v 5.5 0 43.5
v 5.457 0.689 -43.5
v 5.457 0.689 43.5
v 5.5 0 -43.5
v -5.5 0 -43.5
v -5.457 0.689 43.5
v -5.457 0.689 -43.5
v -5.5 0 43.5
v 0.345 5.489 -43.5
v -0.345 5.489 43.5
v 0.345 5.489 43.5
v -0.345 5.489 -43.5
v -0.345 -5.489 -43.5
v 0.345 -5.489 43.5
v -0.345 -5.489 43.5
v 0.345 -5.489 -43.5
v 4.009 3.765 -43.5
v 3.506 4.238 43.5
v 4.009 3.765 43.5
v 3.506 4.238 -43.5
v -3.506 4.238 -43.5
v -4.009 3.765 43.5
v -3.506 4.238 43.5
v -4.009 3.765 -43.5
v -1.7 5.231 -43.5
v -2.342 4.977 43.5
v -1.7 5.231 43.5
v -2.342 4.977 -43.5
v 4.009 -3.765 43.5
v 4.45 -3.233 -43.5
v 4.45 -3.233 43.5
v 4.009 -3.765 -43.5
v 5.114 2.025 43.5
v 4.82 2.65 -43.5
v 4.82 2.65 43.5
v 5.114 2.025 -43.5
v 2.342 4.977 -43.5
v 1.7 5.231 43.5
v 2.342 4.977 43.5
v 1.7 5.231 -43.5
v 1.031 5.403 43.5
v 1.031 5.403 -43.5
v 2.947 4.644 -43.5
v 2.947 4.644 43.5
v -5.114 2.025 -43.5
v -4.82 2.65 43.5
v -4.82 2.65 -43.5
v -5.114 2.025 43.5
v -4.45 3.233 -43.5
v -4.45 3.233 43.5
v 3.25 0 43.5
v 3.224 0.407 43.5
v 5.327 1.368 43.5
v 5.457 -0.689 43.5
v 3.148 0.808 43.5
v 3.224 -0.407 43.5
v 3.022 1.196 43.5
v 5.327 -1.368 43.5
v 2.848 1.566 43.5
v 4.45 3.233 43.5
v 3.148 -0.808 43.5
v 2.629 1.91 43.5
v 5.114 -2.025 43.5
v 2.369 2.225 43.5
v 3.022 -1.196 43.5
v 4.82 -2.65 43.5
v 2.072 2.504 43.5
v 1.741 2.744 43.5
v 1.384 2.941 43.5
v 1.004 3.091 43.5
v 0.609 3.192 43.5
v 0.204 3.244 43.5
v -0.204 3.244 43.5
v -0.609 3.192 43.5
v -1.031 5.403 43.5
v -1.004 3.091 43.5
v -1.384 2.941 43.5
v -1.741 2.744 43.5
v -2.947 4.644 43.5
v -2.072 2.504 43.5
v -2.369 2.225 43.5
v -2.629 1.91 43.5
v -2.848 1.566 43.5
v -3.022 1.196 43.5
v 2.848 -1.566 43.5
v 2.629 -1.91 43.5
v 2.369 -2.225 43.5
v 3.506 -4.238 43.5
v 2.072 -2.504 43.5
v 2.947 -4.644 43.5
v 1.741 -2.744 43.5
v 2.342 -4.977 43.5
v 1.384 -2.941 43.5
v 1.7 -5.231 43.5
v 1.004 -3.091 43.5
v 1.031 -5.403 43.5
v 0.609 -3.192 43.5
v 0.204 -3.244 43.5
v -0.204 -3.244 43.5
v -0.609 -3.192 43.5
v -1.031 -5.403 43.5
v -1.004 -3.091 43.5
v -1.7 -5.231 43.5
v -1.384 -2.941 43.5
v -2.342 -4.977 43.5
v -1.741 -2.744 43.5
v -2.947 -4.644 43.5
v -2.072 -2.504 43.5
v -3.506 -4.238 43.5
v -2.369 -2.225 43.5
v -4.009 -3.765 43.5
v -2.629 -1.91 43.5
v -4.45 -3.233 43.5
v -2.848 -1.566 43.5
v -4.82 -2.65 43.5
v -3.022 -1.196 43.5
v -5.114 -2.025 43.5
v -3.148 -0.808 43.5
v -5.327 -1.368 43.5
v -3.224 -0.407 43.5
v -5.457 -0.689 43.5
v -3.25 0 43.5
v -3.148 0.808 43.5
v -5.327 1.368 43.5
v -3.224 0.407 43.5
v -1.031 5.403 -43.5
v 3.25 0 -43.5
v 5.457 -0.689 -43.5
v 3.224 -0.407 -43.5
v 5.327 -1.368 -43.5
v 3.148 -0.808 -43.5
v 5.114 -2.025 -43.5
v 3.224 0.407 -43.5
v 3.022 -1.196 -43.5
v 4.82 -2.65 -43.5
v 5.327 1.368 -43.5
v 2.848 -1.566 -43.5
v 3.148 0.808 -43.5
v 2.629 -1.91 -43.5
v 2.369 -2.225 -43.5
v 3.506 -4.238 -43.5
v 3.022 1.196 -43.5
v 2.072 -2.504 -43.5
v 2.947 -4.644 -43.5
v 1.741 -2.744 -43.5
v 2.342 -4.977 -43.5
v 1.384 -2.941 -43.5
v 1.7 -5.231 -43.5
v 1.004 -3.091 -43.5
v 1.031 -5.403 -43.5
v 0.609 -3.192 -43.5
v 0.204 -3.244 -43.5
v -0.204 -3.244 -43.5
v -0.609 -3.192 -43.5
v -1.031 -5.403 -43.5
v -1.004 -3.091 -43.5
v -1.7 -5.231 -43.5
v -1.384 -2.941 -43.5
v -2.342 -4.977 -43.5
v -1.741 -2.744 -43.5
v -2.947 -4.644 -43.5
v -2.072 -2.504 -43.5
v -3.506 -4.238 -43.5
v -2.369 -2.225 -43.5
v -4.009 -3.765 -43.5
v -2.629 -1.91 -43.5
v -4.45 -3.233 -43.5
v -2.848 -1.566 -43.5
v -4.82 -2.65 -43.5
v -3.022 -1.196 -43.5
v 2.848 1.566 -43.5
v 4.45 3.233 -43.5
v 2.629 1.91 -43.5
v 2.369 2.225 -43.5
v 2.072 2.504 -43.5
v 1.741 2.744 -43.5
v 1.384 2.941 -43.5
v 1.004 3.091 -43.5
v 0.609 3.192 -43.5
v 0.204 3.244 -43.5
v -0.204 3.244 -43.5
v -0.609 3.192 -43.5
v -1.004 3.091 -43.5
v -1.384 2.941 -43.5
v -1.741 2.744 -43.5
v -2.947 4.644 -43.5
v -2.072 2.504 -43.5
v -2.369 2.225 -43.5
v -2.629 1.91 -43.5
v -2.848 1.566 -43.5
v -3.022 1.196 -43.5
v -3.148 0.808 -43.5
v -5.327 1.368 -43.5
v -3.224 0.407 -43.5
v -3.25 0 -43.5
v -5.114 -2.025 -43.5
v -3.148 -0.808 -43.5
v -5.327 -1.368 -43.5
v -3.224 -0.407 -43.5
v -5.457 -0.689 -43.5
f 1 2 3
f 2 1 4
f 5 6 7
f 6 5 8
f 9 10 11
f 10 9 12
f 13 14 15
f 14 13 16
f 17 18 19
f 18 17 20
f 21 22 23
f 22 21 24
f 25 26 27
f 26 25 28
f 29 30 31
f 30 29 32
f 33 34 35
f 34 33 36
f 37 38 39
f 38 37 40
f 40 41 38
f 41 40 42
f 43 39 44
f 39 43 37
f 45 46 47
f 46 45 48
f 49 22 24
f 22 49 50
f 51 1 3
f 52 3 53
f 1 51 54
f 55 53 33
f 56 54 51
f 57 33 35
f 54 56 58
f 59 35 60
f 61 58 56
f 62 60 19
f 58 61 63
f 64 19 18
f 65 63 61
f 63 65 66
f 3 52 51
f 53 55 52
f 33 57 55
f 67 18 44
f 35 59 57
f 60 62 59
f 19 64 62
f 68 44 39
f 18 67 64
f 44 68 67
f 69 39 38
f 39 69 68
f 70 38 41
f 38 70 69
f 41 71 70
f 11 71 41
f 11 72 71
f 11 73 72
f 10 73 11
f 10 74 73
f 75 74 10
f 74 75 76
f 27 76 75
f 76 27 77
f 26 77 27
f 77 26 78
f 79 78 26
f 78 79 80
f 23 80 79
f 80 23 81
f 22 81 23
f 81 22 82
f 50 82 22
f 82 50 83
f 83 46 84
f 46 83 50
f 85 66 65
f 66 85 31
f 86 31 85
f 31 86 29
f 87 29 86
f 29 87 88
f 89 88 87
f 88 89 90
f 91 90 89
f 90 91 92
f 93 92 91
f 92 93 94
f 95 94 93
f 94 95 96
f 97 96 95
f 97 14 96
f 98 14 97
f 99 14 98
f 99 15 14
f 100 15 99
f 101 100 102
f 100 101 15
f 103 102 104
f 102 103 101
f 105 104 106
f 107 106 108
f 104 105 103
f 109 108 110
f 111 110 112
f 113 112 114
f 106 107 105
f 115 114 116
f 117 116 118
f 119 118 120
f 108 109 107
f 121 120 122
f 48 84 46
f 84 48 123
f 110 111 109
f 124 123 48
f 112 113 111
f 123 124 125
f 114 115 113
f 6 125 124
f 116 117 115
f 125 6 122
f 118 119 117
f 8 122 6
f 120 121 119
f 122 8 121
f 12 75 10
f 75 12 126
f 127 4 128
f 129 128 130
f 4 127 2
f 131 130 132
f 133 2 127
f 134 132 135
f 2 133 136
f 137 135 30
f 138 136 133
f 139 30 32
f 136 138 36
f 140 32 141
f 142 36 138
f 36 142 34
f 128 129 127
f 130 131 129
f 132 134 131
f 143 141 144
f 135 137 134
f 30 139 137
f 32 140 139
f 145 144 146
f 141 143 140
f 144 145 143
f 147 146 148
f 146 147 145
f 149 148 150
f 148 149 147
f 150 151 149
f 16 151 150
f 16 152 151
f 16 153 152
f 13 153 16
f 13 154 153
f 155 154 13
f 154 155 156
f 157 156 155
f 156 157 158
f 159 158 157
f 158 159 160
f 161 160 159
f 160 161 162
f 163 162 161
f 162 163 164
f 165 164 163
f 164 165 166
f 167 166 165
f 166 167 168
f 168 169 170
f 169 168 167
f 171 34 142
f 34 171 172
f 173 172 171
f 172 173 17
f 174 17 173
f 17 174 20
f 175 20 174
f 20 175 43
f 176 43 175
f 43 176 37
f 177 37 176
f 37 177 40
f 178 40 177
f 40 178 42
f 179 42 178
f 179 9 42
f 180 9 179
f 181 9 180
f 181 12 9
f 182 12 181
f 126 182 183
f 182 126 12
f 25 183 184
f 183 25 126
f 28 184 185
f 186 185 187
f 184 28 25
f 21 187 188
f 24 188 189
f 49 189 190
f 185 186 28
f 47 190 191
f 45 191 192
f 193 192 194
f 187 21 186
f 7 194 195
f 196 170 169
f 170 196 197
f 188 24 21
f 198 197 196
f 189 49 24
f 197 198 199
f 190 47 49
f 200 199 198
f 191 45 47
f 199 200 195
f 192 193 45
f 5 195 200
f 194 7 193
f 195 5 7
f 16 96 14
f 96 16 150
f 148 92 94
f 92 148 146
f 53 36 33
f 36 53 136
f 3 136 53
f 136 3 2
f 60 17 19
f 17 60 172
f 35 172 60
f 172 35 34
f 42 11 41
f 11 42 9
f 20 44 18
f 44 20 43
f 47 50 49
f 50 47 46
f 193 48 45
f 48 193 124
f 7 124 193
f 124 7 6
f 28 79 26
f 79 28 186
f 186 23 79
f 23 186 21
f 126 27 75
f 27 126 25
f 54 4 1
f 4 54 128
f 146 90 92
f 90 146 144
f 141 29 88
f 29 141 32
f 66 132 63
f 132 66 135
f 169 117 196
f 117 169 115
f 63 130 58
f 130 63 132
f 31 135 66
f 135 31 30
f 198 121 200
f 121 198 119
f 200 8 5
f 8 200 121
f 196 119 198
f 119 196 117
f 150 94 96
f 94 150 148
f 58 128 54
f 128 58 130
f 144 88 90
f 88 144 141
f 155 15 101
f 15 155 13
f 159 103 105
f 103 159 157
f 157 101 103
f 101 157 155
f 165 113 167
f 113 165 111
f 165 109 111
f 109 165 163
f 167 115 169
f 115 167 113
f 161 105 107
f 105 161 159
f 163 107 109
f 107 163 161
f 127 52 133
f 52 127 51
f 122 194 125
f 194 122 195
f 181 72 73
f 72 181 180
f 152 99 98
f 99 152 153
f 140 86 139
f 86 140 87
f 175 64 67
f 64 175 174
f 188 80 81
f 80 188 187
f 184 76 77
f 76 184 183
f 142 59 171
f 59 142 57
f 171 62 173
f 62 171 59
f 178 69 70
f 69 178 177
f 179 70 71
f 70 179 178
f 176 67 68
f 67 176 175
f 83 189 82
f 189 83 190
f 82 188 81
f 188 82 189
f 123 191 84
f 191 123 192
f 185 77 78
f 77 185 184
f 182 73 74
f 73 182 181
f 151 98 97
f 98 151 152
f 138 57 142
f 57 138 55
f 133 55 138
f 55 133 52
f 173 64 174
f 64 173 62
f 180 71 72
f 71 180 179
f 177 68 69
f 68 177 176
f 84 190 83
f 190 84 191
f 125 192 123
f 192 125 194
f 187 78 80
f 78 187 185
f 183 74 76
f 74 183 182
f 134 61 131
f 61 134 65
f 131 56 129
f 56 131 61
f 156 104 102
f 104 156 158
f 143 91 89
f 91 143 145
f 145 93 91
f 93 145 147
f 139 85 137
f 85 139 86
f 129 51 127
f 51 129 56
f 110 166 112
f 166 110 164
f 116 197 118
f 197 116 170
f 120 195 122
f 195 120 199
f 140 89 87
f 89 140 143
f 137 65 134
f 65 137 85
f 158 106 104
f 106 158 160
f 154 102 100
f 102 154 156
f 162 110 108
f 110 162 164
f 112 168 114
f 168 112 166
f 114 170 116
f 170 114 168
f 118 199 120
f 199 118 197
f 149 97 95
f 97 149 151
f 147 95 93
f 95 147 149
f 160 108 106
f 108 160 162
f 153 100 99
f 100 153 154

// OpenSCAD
$fn = 50;


difference() {
	union() {
		translate(v = [0, 0, -43.5000000000]) {
			cylinder(h = 87, r = 5.5000000000);
		}
	}
	union() {
		translate(v = [0, 0, -100.0000000000]) {
			cylinder(h = 200, r = 3.2500000000);
		}
	}
}
